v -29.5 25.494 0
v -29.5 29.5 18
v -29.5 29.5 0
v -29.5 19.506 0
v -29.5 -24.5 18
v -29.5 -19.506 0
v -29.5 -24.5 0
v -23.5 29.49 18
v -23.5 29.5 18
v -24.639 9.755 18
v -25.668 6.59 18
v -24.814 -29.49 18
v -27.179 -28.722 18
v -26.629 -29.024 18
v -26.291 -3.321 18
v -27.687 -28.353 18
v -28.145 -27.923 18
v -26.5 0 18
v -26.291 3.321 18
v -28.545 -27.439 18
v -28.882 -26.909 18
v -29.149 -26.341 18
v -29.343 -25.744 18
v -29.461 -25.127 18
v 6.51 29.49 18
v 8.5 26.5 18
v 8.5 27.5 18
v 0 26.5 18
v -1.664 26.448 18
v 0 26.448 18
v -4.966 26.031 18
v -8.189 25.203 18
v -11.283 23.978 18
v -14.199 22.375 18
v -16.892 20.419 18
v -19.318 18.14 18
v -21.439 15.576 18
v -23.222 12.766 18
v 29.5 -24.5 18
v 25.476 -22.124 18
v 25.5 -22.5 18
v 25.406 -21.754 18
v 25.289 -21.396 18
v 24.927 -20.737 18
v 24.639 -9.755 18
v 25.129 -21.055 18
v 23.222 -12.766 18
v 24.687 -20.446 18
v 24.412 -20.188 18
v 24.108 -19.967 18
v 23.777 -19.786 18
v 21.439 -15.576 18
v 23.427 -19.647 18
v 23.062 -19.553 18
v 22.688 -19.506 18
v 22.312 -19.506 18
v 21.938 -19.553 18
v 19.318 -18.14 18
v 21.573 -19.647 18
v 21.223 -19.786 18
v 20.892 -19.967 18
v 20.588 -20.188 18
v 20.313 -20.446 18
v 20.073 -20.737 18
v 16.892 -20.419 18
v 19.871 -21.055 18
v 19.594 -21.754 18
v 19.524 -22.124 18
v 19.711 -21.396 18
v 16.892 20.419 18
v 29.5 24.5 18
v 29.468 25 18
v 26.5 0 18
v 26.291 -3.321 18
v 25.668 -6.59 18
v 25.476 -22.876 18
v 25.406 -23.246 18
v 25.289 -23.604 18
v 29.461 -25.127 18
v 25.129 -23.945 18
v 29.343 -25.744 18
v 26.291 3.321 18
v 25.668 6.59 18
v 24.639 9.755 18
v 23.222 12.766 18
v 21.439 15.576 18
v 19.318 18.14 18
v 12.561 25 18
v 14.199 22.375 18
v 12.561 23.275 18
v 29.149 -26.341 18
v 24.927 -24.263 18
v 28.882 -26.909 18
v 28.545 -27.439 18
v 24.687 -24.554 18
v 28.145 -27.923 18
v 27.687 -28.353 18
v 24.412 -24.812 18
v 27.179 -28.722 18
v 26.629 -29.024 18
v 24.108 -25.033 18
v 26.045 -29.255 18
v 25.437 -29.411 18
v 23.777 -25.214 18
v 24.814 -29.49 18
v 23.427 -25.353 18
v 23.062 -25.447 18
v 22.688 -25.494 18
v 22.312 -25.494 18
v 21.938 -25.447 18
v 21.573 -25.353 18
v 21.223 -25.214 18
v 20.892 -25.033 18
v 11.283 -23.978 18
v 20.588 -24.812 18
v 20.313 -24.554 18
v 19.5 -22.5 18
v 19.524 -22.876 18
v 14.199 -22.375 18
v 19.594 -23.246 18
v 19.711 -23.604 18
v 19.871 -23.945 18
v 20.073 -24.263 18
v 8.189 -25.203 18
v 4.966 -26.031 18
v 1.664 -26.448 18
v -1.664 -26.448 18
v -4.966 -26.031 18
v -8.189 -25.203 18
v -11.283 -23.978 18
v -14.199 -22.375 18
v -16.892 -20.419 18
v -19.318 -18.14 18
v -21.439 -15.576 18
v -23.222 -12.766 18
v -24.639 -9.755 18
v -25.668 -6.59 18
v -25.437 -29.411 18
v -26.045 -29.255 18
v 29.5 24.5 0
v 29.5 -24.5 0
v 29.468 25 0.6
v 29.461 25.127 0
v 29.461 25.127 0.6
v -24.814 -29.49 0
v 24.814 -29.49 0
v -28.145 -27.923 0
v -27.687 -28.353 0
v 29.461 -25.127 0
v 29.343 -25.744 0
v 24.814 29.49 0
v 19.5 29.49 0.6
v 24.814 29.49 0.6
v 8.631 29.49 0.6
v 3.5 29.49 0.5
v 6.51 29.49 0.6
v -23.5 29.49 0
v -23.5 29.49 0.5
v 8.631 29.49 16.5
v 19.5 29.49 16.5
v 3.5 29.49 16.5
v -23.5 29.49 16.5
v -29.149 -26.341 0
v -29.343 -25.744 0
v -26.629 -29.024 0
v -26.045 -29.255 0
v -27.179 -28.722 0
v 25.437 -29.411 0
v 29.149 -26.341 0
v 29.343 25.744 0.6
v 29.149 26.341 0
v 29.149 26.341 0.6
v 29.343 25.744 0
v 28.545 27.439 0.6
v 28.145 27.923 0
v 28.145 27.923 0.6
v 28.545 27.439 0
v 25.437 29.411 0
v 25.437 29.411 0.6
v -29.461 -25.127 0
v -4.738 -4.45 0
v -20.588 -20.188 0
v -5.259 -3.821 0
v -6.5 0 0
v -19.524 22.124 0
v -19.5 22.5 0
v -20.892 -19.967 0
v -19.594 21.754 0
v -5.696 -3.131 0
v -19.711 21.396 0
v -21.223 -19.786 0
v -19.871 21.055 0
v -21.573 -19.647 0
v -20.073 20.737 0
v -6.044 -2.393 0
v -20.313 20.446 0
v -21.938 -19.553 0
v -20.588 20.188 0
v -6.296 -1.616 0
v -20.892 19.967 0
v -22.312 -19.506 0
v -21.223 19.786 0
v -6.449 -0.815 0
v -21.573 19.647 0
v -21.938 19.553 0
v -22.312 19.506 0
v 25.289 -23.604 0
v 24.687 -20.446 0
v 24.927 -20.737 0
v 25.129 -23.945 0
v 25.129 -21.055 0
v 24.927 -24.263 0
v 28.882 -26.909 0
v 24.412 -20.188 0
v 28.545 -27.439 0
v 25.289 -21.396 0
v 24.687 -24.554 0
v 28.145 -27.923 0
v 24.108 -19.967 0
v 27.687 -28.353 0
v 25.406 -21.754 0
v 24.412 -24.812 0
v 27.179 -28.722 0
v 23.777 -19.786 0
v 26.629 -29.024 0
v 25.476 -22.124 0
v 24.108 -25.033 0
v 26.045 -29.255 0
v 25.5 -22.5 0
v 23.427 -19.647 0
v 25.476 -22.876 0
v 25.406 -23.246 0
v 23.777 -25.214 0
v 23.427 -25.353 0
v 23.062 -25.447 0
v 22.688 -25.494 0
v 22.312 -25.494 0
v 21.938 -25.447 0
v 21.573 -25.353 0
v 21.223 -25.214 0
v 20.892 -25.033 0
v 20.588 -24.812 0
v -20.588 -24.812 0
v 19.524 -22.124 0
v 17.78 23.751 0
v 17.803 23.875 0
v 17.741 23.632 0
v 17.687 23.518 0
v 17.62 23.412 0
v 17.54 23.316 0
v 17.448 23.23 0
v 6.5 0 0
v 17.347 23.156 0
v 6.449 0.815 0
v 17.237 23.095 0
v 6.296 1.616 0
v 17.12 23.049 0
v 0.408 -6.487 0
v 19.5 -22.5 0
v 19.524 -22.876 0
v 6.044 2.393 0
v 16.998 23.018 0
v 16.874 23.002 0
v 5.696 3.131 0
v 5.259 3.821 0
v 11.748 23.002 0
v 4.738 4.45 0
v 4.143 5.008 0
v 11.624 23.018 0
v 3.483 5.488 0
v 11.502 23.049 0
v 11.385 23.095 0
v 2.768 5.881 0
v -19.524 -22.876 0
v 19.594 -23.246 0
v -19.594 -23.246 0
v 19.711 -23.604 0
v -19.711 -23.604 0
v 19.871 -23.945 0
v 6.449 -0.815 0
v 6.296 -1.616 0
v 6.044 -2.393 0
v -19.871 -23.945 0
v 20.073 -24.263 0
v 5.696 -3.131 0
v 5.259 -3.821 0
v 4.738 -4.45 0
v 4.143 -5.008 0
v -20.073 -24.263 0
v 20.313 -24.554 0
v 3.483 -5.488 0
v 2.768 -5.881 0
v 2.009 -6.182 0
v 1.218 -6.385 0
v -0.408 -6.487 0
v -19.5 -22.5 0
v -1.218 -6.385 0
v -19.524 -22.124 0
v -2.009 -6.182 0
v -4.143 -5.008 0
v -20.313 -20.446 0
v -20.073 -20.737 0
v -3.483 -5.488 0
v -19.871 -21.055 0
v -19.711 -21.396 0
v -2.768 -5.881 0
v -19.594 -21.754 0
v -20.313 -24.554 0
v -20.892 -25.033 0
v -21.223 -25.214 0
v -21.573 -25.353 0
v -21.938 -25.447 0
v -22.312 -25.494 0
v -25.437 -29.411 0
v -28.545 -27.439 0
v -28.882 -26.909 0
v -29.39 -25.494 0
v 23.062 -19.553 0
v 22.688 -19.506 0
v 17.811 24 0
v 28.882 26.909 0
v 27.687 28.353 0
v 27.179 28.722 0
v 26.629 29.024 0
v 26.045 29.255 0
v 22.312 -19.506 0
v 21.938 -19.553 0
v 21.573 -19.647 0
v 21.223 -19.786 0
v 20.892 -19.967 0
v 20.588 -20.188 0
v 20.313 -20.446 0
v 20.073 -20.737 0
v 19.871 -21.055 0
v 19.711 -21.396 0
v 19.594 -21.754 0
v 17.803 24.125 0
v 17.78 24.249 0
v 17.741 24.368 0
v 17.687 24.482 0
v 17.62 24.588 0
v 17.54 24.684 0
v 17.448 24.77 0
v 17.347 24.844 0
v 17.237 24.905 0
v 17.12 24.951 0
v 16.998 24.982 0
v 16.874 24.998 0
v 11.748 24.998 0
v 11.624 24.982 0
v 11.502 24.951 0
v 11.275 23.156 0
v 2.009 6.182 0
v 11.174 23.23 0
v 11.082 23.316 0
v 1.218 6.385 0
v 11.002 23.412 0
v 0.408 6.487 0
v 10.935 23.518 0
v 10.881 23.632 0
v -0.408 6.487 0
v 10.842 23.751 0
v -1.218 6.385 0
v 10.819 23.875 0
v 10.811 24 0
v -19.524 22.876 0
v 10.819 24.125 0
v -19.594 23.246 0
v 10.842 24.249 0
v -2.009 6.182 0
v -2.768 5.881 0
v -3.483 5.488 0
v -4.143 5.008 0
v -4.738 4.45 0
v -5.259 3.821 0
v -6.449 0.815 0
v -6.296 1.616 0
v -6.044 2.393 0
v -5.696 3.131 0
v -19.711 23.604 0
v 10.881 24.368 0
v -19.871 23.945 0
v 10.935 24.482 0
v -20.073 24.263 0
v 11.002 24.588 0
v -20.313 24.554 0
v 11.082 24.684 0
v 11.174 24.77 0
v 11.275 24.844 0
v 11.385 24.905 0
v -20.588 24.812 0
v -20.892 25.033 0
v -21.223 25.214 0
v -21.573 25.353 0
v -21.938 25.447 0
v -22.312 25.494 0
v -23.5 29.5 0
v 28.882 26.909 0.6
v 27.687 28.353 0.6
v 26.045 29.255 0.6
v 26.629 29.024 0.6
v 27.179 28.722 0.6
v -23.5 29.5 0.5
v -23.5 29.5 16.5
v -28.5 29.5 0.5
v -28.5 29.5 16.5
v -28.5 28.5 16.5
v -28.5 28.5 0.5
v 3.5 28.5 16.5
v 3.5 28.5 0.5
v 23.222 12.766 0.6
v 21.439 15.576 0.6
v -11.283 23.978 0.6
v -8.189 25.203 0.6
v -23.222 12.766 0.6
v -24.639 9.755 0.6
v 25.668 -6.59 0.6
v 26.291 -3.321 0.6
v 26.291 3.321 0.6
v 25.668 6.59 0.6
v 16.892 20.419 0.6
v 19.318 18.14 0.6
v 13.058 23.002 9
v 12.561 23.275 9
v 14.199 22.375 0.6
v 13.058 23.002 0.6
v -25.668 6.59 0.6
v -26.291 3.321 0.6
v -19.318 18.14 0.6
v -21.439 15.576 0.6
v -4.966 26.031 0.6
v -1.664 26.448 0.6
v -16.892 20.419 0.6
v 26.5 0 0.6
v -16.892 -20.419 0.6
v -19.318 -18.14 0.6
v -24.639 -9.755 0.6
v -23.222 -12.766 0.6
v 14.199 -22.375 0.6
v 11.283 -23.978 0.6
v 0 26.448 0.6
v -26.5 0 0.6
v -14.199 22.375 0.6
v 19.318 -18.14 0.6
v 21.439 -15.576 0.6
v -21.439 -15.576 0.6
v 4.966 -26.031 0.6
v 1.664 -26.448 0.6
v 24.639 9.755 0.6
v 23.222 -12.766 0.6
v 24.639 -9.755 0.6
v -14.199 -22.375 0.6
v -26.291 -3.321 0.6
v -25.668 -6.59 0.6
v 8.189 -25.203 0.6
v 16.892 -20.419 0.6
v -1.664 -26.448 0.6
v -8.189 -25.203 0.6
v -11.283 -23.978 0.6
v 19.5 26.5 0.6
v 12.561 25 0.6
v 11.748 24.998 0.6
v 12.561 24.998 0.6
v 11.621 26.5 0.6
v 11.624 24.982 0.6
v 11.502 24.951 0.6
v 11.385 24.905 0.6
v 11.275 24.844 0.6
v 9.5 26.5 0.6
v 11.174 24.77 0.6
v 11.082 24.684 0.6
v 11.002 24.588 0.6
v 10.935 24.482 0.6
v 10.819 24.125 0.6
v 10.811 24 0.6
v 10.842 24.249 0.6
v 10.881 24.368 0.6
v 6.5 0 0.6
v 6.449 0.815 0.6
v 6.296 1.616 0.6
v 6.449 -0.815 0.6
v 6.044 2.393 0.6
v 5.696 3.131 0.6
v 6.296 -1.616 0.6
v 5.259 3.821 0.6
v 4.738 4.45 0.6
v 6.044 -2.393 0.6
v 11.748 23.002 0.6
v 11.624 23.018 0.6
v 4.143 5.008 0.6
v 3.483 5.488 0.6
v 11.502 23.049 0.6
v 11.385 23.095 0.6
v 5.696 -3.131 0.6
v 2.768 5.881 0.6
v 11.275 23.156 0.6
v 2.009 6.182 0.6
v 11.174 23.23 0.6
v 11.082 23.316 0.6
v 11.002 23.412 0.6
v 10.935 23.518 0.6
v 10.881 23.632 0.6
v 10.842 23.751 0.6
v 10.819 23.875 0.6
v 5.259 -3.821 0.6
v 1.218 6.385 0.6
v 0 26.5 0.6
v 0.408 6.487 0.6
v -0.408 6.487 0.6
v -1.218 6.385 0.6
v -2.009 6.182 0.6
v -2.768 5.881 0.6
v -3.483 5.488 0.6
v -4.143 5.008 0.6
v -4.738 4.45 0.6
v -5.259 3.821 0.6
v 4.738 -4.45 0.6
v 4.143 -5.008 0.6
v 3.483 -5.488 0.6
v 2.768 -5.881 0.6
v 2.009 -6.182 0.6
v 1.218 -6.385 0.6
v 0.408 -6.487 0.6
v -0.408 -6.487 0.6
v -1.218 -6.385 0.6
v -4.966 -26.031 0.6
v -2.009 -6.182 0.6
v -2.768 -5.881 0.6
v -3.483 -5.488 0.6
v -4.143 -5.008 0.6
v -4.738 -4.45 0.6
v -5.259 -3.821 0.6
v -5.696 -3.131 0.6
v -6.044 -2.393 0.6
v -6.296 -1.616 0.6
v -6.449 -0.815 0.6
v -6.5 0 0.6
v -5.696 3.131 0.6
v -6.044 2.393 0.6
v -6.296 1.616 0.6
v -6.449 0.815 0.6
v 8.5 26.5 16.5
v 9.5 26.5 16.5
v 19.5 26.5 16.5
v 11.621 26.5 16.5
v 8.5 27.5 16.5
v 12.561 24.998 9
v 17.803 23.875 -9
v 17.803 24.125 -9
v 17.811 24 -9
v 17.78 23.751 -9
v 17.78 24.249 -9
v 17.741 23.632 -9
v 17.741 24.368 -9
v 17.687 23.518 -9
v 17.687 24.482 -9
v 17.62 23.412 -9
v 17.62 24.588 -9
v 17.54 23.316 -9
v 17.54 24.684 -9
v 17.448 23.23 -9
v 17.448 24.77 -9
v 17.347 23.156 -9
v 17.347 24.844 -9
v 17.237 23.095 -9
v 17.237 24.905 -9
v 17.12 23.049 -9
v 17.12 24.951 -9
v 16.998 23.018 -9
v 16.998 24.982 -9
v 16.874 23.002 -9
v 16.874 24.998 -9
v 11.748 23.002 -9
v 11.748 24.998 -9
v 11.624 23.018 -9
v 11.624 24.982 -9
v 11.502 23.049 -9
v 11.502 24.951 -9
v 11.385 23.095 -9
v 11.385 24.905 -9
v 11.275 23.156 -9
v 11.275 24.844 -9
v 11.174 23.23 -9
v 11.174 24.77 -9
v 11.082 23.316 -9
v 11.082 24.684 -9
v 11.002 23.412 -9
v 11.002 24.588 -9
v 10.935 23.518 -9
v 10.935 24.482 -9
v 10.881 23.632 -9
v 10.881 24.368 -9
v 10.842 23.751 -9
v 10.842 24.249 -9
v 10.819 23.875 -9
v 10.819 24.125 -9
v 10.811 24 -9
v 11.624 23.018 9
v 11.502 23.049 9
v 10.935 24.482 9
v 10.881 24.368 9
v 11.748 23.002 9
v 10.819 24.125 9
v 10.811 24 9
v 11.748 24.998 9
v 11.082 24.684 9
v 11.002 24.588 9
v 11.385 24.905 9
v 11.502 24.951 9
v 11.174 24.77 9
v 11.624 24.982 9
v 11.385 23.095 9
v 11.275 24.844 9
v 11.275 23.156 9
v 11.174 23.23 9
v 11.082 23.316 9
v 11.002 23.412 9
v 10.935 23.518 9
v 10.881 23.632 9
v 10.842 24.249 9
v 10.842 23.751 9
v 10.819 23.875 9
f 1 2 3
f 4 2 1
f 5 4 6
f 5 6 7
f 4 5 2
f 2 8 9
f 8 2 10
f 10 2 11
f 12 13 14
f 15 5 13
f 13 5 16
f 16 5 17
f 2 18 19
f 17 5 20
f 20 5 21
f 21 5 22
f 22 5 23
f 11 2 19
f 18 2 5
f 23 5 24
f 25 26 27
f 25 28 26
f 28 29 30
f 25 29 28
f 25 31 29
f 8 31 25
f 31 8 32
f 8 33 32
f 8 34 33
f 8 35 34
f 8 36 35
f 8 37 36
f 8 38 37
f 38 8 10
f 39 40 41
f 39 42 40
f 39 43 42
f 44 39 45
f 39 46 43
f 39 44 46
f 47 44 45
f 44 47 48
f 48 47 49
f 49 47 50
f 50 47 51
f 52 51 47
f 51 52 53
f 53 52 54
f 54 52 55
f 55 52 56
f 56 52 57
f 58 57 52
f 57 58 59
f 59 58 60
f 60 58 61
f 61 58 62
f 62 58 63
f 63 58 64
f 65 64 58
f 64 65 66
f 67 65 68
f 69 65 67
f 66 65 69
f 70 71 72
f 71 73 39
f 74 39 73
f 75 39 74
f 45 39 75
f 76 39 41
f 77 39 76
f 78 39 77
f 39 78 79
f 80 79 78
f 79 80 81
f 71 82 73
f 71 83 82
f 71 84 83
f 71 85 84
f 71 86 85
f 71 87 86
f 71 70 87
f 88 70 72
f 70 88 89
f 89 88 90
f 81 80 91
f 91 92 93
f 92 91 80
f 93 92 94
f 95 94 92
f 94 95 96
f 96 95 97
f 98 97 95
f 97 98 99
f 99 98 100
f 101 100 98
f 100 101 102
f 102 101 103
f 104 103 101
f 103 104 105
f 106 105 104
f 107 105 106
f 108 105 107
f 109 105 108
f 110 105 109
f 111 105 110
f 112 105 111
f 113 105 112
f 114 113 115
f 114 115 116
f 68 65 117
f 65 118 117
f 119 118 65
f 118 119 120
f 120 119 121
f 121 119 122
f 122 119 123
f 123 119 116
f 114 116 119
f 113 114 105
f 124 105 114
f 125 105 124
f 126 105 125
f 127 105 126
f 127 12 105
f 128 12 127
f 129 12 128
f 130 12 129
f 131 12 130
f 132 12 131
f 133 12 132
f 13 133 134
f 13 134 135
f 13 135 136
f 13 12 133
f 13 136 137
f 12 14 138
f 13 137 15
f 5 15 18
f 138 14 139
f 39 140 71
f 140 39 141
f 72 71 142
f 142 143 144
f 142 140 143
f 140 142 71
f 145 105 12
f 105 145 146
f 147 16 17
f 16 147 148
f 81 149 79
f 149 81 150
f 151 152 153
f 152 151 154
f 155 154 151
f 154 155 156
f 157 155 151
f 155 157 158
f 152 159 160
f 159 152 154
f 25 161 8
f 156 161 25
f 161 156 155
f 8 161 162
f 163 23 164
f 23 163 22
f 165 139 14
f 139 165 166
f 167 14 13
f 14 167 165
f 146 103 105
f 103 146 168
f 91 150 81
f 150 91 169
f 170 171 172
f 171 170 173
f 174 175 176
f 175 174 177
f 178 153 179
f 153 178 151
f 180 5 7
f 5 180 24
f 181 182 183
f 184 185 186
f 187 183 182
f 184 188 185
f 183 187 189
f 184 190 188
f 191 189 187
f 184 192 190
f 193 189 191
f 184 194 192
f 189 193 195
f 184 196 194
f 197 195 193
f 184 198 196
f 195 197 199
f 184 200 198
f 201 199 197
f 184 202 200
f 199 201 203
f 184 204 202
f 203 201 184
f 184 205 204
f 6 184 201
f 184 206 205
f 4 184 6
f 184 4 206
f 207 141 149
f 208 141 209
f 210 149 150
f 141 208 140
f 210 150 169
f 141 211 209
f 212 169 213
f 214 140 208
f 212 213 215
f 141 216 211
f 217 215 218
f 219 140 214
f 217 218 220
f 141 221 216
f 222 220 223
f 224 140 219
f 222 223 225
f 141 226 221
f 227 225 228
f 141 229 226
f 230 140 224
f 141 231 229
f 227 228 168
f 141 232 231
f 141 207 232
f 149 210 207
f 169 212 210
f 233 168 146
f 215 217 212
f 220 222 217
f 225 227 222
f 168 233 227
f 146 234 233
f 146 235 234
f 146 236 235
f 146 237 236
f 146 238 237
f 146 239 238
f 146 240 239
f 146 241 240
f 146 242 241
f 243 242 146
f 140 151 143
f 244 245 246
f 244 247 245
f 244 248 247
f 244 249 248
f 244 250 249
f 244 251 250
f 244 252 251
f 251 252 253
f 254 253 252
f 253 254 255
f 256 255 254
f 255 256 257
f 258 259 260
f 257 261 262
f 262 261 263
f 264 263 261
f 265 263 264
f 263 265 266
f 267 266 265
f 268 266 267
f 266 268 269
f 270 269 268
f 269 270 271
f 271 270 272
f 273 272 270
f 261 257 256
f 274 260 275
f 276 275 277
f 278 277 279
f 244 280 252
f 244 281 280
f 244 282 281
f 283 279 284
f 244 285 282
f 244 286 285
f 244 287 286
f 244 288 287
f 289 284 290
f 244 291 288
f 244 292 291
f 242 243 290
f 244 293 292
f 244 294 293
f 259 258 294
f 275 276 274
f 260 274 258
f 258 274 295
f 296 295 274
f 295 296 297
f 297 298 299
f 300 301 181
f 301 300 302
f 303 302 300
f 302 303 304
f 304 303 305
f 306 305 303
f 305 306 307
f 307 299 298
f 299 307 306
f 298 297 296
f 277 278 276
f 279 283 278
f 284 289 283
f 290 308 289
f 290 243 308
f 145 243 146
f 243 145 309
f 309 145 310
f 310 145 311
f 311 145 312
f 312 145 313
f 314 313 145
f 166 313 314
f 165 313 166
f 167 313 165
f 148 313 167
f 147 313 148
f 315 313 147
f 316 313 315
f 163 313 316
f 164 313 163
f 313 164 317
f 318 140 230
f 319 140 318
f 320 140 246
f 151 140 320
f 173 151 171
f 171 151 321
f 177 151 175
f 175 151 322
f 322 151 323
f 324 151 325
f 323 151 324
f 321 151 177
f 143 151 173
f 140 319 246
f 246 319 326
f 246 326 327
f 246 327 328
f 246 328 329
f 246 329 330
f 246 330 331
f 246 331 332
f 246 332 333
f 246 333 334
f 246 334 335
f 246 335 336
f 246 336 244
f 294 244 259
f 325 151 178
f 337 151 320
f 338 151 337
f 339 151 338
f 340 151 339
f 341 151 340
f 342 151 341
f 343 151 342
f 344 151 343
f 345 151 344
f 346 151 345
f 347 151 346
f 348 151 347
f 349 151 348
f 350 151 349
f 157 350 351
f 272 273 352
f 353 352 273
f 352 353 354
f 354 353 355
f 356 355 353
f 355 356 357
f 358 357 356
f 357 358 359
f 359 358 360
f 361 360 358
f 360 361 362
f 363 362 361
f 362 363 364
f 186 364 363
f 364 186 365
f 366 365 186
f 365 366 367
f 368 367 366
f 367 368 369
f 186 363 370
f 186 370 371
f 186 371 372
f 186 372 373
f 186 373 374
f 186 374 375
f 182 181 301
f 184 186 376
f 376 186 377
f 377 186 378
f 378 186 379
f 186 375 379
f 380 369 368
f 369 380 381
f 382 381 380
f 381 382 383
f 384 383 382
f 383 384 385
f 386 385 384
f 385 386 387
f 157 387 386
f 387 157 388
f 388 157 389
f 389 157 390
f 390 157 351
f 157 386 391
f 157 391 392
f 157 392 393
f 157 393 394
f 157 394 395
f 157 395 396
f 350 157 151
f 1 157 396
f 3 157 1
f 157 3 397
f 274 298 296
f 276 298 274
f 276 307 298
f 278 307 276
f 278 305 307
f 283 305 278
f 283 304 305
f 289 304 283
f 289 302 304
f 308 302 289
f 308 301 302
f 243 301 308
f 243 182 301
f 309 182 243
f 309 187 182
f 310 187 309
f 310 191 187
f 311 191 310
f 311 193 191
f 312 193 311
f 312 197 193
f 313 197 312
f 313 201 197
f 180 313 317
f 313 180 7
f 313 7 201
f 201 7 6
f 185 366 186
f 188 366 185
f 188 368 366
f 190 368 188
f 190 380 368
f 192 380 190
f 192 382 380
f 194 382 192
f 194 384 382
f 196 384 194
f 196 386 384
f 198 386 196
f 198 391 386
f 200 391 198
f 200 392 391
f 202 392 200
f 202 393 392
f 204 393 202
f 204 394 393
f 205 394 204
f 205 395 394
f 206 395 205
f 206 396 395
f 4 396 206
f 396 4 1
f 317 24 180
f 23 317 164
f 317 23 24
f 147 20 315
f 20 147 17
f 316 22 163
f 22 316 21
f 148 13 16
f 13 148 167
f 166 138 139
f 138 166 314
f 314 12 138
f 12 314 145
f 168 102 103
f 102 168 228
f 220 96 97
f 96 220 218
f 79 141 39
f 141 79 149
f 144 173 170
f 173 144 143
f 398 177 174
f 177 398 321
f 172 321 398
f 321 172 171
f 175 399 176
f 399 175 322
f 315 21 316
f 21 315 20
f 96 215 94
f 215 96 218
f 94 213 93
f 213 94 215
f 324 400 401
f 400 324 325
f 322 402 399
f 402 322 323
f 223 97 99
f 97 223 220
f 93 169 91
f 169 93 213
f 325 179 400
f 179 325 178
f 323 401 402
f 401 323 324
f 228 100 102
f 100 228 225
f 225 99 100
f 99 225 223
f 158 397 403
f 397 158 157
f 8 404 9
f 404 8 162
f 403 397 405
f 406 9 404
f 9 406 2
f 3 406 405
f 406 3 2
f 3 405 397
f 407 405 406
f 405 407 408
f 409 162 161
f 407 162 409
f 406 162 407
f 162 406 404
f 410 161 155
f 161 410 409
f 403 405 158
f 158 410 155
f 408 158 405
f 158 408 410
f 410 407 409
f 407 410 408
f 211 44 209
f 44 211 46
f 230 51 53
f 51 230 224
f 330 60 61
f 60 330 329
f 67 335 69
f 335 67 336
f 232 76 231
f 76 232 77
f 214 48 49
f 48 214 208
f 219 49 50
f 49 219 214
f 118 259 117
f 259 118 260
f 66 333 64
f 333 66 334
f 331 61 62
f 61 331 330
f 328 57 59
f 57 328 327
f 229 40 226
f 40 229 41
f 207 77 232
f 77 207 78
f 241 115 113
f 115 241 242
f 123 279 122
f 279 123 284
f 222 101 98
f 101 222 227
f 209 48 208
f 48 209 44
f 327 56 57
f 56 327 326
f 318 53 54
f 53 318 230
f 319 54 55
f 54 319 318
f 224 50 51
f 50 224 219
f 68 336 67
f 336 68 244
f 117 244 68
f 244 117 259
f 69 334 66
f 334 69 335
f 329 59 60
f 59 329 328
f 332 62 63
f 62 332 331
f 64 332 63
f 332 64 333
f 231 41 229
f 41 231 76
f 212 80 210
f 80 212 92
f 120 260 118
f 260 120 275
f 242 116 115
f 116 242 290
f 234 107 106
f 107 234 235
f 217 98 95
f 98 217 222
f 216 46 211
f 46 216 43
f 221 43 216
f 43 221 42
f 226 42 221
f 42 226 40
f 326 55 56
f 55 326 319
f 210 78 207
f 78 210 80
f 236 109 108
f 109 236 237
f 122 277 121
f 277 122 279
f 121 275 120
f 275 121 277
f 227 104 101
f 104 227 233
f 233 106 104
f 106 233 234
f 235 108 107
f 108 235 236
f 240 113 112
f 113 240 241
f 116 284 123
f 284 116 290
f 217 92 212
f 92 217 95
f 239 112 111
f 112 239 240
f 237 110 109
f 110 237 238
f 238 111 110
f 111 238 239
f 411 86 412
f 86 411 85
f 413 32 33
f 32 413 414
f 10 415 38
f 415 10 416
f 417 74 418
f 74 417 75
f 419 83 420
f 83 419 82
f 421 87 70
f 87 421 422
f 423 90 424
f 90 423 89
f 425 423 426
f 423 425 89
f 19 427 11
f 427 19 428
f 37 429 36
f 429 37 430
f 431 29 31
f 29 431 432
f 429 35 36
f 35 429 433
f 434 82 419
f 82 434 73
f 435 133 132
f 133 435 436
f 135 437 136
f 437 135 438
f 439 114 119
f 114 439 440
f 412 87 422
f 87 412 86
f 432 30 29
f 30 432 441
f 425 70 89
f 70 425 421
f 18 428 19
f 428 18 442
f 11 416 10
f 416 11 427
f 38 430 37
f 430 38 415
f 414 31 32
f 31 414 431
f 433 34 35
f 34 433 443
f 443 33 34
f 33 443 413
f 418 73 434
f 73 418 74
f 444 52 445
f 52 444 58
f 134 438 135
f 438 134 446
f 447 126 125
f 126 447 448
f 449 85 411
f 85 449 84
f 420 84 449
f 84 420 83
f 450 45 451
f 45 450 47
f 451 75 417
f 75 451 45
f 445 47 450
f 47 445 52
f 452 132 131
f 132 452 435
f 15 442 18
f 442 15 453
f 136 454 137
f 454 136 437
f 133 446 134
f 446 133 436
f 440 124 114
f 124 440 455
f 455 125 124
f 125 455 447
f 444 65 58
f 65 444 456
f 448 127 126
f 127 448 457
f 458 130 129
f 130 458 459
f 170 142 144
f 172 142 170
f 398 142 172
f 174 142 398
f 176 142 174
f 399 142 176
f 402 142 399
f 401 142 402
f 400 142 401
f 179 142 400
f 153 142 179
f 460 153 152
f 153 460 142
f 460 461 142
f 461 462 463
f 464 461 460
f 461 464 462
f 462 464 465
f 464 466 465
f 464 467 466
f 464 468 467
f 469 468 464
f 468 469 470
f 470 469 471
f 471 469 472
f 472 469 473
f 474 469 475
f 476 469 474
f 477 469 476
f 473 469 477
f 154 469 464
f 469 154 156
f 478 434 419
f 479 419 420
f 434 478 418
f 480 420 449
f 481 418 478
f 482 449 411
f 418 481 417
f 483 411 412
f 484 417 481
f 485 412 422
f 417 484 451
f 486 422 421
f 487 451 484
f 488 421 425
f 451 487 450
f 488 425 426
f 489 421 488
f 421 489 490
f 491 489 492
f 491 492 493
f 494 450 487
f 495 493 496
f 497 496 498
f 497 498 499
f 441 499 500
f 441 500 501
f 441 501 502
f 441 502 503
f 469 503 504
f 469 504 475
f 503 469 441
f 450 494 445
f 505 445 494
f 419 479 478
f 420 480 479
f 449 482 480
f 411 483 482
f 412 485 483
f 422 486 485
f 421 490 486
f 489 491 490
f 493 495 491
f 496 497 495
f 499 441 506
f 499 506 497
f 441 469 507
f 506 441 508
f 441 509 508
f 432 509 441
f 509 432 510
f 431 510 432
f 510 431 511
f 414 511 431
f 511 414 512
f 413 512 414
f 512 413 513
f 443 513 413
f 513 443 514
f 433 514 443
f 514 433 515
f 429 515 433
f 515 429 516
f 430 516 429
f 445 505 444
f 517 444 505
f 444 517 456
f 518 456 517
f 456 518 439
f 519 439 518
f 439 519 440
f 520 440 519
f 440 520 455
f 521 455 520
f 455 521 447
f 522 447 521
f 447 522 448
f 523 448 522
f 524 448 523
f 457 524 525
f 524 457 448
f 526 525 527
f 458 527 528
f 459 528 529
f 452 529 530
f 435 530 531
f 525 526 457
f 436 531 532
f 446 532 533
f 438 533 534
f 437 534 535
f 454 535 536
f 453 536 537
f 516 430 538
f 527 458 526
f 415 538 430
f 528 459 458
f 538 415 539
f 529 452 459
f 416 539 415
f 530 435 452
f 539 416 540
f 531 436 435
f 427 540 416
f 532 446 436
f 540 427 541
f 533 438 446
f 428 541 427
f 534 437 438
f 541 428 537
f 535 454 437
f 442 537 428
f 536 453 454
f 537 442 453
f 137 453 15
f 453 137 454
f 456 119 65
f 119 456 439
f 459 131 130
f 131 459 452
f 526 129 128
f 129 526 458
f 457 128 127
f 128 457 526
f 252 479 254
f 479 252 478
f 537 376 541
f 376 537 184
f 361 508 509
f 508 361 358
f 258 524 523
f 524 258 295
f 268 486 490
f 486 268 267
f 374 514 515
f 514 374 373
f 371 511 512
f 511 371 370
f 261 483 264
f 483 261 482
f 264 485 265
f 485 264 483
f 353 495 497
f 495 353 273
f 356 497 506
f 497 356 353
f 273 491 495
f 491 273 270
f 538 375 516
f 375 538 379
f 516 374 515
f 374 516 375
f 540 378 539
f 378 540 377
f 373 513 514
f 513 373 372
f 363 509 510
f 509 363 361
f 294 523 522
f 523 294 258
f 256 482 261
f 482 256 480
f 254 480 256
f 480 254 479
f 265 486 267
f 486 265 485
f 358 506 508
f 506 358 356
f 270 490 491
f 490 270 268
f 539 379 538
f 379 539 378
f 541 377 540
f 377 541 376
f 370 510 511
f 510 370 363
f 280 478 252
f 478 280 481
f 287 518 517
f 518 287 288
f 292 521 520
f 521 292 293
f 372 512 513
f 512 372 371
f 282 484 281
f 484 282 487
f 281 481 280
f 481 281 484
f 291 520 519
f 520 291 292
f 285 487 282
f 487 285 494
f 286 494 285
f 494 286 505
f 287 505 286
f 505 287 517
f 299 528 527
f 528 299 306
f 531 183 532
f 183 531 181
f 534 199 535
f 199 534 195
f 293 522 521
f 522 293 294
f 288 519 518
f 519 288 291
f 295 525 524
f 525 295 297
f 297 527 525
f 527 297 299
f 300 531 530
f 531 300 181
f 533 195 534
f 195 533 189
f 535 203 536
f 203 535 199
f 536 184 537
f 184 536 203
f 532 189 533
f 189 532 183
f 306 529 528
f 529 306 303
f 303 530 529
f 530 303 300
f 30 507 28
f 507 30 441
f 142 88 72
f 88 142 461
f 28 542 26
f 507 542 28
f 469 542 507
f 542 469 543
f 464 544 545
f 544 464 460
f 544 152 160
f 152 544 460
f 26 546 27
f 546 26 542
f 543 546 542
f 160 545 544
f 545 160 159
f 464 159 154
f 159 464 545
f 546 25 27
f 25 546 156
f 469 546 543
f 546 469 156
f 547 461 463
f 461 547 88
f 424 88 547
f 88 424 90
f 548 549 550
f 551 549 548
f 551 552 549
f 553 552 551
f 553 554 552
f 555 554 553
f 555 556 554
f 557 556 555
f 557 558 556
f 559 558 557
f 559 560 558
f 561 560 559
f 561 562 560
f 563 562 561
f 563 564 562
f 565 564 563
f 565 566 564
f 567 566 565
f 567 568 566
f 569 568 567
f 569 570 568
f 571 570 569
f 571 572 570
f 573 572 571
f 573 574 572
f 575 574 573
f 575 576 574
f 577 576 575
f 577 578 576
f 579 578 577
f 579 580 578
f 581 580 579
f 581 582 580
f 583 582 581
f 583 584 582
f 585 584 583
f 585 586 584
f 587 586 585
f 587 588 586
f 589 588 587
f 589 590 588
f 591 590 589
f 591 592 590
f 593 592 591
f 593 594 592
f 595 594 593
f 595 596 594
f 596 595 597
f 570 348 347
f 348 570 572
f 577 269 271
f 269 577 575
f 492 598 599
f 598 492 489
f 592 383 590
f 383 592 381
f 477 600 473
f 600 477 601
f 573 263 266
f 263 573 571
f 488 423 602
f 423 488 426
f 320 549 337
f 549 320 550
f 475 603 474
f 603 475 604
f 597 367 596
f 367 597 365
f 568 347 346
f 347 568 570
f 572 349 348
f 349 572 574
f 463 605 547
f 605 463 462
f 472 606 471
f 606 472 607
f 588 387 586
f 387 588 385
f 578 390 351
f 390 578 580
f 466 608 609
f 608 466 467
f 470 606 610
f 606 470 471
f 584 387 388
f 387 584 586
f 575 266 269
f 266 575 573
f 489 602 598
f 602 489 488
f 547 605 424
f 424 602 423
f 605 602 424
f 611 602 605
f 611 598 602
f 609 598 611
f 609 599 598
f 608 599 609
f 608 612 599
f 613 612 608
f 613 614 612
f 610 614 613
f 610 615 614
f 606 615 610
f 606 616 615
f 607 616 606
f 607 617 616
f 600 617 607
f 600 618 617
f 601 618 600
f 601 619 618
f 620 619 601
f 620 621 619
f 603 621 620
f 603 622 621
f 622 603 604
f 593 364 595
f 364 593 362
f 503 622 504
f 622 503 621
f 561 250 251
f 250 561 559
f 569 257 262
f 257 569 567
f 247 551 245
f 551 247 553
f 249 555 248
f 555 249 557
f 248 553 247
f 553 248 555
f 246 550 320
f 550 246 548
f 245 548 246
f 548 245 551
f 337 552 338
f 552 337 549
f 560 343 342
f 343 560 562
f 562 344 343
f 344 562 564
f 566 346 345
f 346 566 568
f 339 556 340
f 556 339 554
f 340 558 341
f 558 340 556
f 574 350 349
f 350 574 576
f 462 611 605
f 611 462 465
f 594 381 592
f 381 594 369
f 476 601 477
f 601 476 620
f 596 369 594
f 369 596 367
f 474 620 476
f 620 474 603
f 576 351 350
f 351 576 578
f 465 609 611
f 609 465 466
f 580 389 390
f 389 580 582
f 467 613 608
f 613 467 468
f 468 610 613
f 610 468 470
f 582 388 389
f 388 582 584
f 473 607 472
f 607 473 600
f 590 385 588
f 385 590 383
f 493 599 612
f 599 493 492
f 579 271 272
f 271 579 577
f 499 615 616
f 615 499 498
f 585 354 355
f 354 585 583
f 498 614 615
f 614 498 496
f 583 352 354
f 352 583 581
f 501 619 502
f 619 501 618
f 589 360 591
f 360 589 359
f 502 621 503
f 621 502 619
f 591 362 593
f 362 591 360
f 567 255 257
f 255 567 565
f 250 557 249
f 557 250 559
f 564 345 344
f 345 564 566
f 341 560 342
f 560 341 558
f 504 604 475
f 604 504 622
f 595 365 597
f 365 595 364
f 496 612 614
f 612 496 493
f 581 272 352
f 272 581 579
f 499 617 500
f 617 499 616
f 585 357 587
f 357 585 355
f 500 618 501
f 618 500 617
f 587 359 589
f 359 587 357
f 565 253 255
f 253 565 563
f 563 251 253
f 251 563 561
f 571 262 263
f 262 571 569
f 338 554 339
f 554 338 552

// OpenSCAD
$fn = 50;


union() {
	difference() {
		union() {
			hull() {
				translate(v = [-24.5000000000, 24.5000000000, 0]) {
					cylinder(h = 18, r = 5);
				}
				translate(v = [24.5000000000, 24.5000000000, 0]) {
					cylinder(h = 18, r = 5);
				}
				translate(v = [-24.5000000000, -24.5000000000, 0]) {
					cylinder(h = 18, r = 5);
				}
				translate(v = [24.5000000000, -24.5000000000, 0]) {
					cylinder(h = 18, r = 5);
				}
			}
			translate(v = [-29.5000000000, 23.5000000000, 0]) {
				cube(size = [6, 6, 18]);
			}
		}
		union() {
			translate(v = [-30.0000000000, -22.5000000000, -250.0000000000]) {
				rotate(a = [0, 0, 0]) {
					difference() {
						union() {
							hull() {
								translate(v = [7.5000000000, 0, 0]) {
									cylinder(h = 250, r = 3.0000000000, r1 = 3.0000000000, r2 = 3.0000000000);
								}
								translate(v = [-7.5000000000, 0, 0]) {
									cylinder(h = 250, r = 3.0000000000, r1 = 3.0000000000, r2 = 3.0000000000);
								}
							}
						}
						union();
					}
				}
			}
			translate(v = [-30.0000000000, 22.5000000000, -250.0000000000]) {
				rotate(a = [0, 0, 0]) {
					difference() {
						union() {
							hull() {
								translate(v = [7.5000000000, 0, 0]) {
									cylinder(h = 250, r = 3.0000000000, r1 = 3.0000000000, r2 = 3.0000000000);
								}
								translate(v = [-7.5000000000, 0, 0]) {
									cylinder(h = 250, r = 3.0000000000, r1 = 3.0000000000, r2 = 3.0000000000);
								}
							}
						}
						union();
					}
				}
			}
			translate(v = [-28.5000000000, 28.5000000000, 0.5000000000]) {
				cube(size = [32, 1, 16]);
			}
			translate(v = [22.5000000000, -22.5000000000, 0]) {
				cylinder(h = 100, r = 3.0000000000);
			}
			translate(v = [0, 0, 0.6000000000]) {
				cylinder(h = 20.4000000000, r = 26.5000000000);
			}
			translate(v = [0, 0, -9.0000000000]) {
				cylinder(h = 18, r = 6.5000000000);
			}
			translate(v = [0.0000000000, 25.0000000000, 0.6000000000]) {
				cube(size = [29.5000000000, 1.5000000000, 20.4000000000]);
			}
			translate(v = [19.5000000000, 25.0000000000, 0.6000000000]) {
				cube(size = [10, 4.5000000000, 20.4000000000]);
			}
			translate(v = [8.5000000000, 25.0000000000, 16.5000000000]) {
				cube(size = [21, 4.5000000000, 1.5000000000]);
			}
			translate(v = [5.7500000000, 30.2500000000, 0.6000000000]) {
				rotate(a = [0, 0, -45]) {
					cube(size = [7.5000000000, 1.5000000000, 20.4000000000]);
				}
			}
			translate(v = [5.0610000000, 23.0000000000, 0.6000000000]) {
				cube(size = [7.5000000000, 2, 17.4000000000]);
			}
		}
	}
	union() {
		translate(v = [14.3110000000, 24.0000000000, -9.0000000000]) {
			rotate(a = [0, 0, 0]) {
				difference() {
					union() {
						#hull() {
							#translate(v = [2.5000000000, 0, 0]) {
								cylinder(h = 18, r = 1.0000000000, r1 = 1.0000000000, r2 = 1.0000000000);
							}
							#translate(v = [-2.5000000000, 0, 0]) {
								cylinder(h = 18, r = 1.0000000000, r1 = 1.0000000000, r2 = 1.0000000000);
							}
						}
					}
					union();
				}
			}
		}
	}
}
